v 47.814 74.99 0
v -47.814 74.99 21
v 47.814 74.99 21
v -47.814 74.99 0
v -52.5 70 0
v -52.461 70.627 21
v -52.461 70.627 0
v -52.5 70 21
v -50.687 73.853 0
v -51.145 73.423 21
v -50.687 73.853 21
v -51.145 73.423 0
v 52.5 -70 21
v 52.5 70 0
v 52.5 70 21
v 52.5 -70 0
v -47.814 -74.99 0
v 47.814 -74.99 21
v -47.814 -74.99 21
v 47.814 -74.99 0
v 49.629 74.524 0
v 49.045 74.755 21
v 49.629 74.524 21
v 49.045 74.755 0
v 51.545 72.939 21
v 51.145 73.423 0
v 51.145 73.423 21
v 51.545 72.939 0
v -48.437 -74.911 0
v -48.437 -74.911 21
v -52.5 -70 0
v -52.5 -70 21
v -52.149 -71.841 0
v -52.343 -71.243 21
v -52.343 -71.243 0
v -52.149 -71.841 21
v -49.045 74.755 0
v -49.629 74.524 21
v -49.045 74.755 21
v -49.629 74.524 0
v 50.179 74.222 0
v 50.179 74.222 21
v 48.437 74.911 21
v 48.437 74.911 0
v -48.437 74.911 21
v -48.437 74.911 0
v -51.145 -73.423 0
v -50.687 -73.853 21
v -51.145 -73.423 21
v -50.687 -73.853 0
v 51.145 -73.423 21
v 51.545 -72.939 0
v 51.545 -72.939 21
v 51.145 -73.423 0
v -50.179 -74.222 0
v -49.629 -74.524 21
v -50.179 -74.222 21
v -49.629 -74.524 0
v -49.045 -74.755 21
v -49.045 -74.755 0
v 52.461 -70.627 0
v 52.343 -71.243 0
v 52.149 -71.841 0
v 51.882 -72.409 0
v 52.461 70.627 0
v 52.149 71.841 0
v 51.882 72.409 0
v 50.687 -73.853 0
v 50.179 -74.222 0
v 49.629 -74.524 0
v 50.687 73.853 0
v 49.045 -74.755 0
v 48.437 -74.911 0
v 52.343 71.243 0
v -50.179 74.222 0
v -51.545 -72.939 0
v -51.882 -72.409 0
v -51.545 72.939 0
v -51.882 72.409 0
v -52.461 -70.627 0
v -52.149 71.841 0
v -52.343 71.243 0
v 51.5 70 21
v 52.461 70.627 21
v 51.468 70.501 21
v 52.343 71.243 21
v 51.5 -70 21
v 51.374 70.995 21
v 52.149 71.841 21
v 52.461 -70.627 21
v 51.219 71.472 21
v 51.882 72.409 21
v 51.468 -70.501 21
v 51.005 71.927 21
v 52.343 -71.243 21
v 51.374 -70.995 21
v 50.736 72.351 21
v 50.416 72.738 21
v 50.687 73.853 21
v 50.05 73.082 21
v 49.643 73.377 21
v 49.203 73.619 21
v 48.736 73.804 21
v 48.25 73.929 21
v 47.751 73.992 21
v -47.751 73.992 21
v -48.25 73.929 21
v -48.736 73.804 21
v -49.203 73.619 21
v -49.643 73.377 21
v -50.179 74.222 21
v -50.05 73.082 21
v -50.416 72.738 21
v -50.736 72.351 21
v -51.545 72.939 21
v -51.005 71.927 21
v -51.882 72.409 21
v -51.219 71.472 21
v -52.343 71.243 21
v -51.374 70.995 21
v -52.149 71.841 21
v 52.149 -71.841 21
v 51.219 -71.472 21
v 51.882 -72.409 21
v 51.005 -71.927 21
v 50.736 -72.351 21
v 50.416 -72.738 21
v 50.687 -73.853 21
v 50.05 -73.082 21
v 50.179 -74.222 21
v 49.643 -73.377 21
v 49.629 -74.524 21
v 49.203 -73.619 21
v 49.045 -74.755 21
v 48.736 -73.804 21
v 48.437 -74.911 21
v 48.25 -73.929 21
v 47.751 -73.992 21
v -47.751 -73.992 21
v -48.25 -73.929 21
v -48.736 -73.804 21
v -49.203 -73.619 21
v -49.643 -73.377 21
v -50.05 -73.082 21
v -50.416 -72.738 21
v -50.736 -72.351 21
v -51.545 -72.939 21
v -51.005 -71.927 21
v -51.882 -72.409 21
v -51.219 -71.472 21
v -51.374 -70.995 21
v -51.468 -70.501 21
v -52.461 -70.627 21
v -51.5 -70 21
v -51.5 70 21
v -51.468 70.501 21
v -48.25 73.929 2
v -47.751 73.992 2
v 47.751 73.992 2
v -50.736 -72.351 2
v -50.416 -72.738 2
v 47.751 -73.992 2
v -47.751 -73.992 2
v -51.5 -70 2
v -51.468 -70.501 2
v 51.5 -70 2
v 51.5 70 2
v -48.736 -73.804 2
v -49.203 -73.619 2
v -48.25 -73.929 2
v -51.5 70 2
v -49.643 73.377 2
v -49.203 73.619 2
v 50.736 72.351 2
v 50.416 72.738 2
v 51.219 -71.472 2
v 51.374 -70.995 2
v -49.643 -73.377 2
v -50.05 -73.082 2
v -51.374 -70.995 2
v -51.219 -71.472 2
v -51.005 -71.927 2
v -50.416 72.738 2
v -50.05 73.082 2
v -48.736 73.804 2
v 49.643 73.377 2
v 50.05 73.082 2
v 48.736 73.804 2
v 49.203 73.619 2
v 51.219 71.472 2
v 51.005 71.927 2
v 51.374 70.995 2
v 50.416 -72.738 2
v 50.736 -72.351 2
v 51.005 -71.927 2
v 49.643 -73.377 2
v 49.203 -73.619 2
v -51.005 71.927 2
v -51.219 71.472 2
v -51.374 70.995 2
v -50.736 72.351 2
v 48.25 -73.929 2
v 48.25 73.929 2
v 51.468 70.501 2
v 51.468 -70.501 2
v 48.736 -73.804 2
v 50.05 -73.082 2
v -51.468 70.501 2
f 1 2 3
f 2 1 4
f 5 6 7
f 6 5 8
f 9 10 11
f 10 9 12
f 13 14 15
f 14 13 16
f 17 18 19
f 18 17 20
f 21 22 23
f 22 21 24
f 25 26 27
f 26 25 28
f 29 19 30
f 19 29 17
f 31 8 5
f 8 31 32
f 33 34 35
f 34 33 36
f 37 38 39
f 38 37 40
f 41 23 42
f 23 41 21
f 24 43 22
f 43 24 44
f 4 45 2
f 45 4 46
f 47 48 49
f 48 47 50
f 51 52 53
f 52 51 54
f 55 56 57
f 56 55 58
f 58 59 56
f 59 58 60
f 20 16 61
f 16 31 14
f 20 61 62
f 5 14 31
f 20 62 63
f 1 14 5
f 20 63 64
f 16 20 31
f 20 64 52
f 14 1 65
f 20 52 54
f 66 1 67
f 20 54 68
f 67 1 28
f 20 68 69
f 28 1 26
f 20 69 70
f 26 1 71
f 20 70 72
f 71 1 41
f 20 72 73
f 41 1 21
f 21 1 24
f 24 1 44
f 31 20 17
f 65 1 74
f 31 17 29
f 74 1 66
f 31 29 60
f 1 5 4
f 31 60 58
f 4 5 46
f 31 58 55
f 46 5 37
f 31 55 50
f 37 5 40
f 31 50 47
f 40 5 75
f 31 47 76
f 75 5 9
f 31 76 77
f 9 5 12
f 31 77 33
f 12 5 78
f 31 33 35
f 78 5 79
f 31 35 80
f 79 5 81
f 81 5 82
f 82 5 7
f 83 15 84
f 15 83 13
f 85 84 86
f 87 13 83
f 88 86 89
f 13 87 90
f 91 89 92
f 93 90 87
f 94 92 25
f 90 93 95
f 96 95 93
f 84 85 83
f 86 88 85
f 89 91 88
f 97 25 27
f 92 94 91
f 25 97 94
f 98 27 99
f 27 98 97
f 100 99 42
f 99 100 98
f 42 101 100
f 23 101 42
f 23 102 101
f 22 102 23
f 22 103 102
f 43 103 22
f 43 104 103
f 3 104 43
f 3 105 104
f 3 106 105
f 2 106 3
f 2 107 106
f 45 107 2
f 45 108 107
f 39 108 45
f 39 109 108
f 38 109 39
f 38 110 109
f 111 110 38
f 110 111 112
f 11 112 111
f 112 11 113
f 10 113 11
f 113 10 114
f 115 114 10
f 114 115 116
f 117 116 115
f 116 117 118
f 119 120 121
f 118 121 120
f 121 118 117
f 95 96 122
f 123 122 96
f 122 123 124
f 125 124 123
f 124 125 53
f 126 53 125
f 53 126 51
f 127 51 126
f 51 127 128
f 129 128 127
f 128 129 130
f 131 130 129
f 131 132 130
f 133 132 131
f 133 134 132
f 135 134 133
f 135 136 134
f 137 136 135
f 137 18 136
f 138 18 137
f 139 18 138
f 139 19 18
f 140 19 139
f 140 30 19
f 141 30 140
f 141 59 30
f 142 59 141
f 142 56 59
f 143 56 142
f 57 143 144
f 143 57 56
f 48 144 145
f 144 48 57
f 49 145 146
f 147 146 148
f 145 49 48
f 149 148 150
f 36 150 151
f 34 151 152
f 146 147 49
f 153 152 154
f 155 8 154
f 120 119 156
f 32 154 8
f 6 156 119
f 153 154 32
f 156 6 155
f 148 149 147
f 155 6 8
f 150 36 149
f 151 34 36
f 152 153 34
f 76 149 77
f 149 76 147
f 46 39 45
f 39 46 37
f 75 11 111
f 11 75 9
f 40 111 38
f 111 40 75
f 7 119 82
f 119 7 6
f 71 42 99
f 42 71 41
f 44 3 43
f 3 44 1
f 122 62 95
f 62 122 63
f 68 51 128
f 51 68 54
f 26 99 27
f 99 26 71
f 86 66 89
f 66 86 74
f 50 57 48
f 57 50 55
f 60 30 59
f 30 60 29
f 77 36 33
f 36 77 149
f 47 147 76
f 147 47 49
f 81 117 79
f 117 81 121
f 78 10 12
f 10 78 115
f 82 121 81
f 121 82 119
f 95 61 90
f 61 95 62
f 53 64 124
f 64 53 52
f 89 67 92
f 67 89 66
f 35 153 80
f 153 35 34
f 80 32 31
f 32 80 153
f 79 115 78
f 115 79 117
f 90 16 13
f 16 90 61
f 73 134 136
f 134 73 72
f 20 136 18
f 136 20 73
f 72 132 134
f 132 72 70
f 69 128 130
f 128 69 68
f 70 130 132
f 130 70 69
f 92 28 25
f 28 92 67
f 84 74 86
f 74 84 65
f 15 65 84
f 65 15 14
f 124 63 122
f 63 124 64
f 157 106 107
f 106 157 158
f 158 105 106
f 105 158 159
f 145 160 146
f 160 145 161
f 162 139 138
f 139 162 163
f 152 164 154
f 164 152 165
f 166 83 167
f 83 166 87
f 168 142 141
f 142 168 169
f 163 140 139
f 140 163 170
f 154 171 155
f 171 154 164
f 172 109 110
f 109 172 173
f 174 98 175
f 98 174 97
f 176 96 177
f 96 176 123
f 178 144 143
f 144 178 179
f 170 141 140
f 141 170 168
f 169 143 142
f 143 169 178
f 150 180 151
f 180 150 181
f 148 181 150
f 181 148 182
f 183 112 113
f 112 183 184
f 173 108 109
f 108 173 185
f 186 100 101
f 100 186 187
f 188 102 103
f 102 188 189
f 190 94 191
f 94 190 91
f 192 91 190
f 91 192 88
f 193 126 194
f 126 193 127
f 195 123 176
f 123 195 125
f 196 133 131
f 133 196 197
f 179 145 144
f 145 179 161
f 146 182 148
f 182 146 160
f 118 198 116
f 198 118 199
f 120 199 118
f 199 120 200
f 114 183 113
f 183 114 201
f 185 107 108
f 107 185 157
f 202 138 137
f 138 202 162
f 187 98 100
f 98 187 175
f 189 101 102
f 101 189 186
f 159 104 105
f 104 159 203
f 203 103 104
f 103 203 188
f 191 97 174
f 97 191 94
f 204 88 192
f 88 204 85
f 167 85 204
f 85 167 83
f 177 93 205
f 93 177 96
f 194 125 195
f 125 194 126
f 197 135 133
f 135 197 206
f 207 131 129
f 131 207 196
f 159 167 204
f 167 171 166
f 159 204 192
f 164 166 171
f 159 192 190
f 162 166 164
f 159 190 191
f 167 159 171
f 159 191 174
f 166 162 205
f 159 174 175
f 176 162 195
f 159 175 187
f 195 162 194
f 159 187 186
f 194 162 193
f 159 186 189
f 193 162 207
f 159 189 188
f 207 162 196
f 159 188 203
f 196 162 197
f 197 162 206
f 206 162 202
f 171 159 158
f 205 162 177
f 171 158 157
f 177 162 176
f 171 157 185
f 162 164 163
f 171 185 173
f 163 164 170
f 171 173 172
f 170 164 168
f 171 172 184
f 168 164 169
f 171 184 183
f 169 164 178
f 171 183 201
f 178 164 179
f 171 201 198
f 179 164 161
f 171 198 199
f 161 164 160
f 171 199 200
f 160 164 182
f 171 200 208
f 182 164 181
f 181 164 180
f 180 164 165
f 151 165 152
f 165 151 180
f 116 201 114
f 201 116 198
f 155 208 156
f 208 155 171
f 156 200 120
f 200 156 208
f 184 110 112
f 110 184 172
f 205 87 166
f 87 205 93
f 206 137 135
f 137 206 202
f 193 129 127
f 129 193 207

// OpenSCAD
$fn = 50;


difference() {
	union() {
		hull() {
			translate(v = [-47.5000000000, 70.0000000000, 0]) {
				cylinder(h = 21, r = 5);
			}
			translate(v = [47.5000000000, 70.0000000000, 0]) {
				cylinder(h = 21, r = 5);
			}
			translate(v = [-47.5000000000, -70.0000000000, 0]) {
				cylinder(h = 21, r = 5);
			}
			translate(v = [47.5000000000, -70.0000000000, 0]) {
				cylinder(h = 21, r = 5);
			}
		}
	}
	union() {
		translate(v = [0, 0, 2]) {
			hull() {
				translate(v = [-47.5000000000, 70.0000000000, 0]) {
					cylinder(h = 19, r = 4);
				}
				translate(v = [47.5000000000, 70.0000000000, 0]) {
					cylinder(h = 19, r = 4);
				}
				translate(v = [-47.5000000000, -70.0000000000, 0]) {
					cylinder(h = 19, r = 4);
				}
				translate(v = [47.5000000000, -70.0000000000, 0]) {
					cylinder(h = 19, r = 4);
				}
			}
		}
	}
}
